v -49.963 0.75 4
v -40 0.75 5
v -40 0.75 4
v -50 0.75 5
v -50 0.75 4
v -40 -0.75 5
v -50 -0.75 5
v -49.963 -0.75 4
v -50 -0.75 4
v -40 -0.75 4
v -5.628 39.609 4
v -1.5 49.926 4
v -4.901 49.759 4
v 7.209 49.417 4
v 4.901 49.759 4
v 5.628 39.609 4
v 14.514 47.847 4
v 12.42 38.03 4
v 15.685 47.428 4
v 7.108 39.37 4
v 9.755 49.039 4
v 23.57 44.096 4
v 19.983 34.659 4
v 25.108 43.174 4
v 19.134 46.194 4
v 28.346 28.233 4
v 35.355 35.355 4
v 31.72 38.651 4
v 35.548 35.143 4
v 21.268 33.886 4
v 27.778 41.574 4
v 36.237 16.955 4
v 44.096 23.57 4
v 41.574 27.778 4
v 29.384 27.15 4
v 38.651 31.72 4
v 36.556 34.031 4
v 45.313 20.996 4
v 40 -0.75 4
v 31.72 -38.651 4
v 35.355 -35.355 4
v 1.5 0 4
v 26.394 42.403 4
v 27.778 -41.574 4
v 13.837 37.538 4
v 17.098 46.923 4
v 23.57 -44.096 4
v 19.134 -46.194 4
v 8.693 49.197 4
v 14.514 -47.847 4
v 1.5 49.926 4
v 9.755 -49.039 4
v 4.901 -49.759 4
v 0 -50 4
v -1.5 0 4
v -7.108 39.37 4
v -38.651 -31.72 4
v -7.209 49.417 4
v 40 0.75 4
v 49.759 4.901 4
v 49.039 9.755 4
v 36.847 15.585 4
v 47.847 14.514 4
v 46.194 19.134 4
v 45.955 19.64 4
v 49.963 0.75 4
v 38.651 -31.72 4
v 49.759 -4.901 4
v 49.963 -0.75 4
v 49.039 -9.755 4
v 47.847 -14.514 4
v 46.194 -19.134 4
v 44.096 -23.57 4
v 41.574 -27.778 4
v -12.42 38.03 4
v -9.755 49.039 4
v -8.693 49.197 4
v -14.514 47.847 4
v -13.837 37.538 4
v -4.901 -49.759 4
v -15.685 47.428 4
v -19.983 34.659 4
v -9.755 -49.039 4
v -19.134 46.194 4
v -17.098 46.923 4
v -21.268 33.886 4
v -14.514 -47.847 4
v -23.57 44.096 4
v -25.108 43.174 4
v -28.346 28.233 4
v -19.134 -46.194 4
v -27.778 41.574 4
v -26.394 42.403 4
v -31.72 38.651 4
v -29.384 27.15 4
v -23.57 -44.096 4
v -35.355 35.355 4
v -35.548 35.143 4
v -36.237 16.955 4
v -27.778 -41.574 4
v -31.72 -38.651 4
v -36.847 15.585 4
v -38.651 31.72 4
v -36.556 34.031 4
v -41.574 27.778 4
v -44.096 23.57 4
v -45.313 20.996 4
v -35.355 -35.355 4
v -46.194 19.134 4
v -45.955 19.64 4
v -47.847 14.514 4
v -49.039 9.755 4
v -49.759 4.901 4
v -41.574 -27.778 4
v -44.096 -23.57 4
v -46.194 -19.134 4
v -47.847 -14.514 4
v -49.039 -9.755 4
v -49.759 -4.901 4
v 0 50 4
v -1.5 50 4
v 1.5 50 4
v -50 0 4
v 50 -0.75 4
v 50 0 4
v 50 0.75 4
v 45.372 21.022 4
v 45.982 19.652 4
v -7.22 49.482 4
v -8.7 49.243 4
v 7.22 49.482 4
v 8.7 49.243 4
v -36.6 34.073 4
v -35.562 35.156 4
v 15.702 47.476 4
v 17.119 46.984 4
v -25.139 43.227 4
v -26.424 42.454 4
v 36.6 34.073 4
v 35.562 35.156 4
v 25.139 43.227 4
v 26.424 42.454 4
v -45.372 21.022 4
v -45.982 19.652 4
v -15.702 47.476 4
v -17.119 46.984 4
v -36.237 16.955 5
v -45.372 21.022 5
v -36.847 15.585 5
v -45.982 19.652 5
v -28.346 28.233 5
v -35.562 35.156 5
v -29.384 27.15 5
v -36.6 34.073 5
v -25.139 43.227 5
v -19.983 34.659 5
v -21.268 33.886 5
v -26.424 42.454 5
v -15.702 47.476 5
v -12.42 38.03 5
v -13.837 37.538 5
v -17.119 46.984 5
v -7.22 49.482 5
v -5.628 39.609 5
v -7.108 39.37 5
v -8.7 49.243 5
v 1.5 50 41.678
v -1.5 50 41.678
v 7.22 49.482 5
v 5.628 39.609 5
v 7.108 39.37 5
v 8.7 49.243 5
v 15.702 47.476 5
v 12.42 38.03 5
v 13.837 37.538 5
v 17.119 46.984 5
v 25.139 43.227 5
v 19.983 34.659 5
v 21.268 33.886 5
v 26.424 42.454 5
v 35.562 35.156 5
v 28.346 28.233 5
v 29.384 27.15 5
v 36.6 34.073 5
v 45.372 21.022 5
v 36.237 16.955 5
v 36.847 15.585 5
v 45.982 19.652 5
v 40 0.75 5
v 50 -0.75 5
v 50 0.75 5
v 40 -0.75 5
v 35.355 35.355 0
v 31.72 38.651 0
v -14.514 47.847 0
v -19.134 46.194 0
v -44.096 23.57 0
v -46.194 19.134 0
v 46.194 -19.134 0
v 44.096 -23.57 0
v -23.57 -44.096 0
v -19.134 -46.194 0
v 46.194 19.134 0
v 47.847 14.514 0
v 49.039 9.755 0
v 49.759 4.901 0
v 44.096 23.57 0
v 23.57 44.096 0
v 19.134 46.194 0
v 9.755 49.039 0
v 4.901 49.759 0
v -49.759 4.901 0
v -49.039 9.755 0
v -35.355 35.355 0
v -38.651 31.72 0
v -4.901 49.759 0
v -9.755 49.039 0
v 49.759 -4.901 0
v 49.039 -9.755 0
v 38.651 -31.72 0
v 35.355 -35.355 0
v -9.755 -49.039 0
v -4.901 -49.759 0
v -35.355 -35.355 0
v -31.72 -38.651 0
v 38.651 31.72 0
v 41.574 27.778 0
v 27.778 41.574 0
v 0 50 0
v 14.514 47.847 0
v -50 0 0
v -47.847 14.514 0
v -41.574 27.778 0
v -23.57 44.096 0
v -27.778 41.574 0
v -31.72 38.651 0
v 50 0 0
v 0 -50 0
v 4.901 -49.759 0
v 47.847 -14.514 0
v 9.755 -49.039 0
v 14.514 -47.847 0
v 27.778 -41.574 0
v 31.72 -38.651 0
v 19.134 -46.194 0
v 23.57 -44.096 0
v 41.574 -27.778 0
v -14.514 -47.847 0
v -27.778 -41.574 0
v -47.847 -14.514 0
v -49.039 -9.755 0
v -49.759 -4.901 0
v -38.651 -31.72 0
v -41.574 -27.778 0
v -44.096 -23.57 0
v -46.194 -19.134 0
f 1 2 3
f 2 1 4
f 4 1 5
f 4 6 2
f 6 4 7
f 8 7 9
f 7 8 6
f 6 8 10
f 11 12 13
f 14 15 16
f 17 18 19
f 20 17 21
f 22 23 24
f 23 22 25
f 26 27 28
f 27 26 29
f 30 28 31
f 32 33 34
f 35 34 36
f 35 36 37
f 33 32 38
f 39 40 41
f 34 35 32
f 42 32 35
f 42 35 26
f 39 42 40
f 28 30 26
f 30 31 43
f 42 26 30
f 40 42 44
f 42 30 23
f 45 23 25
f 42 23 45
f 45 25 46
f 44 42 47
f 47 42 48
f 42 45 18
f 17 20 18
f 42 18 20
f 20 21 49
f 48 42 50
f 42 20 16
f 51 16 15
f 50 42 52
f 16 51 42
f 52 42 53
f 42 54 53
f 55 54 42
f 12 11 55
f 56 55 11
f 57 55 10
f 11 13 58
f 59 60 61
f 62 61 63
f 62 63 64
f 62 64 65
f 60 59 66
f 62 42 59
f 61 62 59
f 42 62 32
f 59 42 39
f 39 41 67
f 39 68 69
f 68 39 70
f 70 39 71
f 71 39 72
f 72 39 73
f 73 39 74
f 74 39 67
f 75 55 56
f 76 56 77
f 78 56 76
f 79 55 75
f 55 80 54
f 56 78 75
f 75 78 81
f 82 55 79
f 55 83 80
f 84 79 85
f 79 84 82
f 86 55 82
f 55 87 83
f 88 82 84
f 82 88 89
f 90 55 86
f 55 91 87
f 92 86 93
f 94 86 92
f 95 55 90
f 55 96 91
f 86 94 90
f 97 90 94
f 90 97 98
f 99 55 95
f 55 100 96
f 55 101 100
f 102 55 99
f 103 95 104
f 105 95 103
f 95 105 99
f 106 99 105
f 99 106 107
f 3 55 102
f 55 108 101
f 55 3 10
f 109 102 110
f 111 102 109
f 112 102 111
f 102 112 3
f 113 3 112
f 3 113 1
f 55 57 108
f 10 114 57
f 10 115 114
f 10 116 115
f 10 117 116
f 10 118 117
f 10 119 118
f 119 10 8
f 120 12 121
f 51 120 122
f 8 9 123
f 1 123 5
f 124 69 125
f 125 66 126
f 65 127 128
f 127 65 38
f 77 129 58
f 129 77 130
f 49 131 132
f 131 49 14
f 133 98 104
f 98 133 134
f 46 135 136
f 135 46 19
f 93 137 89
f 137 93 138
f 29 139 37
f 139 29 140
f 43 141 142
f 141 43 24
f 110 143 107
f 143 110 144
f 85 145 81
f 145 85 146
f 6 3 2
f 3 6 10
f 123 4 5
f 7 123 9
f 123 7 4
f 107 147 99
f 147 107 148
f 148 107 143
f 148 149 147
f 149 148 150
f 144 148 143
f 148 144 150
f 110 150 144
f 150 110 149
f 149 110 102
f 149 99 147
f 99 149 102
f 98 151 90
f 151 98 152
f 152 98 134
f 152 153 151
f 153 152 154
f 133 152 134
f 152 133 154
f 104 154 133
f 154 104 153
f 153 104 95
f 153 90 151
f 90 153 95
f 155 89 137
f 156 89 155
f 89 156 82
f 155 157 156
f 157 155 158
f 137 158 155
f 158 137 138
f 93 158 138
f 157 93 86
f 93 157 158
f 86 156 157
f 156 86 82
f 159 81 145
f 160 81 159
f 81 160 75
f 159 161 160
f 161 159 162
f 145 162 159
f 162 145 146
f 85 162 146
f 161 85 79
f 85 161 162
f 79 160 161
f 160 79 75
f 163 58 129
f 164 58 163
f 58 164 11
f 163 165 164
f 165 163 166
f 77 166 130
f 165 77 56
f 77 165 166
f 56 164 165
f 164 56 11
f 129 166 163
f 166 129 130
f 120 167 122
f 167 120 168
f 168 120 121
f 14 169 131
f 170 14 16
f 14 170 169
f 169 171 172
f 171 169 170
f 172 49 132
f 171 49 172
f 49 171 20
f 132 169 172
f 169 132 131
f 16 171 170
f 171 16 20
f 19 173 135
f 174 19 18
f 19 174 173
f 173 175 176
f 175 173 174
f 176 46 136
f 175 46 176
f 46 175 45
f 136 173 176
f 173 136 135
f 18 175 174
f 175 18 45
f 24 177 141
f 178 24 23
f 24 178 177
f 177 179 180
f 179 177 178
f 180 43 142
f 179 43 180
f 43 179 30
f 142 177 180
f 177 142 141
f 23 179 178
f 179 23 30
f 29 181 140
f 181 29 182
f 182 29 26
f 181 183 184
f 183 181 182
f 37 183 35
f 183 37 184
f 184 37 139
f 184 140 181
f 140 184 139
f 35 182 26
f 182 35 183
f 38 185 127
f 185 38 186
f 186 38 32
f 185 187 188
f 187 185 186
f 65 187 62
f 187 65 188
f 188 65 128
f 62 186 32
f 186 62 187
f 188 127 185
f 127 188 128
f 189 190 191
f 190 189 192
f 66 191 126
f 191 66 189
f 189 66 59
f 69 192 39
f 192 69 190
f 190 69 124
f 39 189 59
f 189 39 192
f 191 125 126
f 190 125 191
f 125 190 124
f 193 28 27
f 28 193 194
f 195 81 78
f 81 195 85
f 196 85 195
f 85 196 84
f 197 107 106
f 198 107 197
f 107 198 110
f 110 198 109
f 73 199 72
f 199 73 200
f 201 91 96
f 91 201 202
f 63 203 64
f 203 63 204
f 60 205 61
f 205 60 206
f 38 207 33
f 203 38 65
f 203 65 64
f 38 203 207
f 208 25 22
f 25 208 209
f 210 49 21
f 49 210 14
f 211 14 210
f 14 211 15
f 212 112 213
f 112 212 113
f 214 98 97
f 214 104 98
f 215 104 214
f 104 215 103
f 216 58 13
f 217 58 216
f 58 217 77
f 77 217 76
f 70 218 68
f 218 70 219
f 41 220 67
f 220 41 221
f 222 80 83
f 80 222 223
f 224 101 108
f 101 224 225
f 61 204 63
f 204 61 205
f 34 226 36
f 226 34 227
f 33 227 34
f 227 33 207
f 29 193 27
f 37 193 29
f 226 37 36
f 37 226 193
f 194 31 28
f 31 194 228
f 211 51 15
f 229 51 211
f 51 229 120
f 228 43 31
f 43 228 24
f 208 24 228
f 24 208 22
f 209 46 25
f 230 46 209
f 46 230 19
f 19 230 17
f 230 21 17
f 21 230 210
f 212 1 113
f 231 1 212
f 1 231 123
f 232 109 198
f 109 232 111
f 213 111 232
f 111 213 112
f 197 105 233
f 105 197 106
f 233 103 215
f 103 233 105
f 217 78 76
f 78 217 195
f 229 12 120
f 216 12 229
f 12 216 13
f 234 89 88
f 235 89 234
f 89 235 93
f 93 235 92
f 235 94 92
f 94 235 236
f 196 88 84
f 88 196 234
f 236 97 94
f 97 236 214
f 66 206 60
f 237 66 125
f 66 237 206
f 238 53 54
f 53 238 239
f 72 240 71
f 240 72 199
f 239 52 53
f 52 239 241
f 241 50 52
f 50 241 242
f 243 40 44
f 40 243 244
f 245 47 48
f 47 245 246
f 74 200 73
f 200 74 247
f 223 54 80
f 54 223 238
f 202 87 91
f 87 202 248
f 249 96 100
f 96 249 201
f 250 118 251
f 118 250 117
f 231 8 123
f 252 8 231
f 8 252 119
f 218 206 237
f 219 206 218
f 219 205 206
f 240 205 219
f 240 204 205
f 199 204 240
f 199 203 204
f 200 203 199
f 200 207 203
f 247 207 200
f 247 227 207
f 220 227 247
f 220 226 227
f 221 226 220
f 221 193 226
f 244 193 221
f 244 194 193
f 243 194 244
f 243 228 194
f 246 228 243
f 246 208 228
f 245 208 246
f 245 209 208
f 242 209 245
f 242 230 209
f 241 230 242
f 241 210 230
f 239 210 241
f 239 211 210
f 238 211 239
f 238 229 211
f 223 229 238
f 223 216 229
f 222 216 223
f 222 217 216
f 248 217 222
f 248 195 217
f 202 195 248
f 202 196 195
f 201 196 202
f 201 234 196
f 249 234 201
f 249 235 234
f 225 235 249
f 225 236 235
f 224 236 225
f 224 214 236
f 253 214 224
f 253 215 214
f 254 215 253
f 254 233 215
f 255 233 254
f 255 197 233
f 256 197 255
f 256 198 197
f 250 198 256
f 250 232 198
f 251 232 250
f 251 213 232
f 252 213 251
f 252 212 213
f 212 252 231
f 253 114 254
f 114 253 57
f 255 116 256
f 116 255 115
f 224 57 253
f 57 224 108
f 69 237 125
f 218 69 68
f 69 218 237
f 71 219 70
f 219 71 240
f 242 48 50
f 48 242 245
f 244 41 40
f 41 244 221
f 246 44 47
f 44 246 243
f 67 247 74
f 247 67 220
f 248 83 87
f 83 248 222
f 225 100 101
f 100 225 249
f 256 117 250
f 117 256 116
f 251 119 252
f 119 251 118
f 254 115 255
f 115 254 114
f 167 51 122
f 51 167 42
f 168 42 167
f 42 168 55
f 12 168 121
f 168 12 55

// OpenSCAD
// Reto 03 · Reloj de sol horizontal para latitud 37°
// Diseño e Impresión 3D en el aula · Pablo Moraga · CC BY-NC-ND 4.0
$fn = 64;
phi = 37;
cylinder(d = 100, h = 4);
for (h = [-6:6]) {
  th = abs(h) == 6 ? 90 : atan(sin(phi) * tan(abs(h) * 15));
  ang = h < 0 ? th : -th;                                // mañana al oeste (−X)
  rotate([0, 0, ang]) translate([-0.75, 40, 4]) cube([1.5, 10, 1]);
}
translate([1.5, 0, 4]) rotate([0, -90, 0]) linear_extrude(3) polygon([[0, 0], [0, 50], [50 * tan(phi), 50]]);
